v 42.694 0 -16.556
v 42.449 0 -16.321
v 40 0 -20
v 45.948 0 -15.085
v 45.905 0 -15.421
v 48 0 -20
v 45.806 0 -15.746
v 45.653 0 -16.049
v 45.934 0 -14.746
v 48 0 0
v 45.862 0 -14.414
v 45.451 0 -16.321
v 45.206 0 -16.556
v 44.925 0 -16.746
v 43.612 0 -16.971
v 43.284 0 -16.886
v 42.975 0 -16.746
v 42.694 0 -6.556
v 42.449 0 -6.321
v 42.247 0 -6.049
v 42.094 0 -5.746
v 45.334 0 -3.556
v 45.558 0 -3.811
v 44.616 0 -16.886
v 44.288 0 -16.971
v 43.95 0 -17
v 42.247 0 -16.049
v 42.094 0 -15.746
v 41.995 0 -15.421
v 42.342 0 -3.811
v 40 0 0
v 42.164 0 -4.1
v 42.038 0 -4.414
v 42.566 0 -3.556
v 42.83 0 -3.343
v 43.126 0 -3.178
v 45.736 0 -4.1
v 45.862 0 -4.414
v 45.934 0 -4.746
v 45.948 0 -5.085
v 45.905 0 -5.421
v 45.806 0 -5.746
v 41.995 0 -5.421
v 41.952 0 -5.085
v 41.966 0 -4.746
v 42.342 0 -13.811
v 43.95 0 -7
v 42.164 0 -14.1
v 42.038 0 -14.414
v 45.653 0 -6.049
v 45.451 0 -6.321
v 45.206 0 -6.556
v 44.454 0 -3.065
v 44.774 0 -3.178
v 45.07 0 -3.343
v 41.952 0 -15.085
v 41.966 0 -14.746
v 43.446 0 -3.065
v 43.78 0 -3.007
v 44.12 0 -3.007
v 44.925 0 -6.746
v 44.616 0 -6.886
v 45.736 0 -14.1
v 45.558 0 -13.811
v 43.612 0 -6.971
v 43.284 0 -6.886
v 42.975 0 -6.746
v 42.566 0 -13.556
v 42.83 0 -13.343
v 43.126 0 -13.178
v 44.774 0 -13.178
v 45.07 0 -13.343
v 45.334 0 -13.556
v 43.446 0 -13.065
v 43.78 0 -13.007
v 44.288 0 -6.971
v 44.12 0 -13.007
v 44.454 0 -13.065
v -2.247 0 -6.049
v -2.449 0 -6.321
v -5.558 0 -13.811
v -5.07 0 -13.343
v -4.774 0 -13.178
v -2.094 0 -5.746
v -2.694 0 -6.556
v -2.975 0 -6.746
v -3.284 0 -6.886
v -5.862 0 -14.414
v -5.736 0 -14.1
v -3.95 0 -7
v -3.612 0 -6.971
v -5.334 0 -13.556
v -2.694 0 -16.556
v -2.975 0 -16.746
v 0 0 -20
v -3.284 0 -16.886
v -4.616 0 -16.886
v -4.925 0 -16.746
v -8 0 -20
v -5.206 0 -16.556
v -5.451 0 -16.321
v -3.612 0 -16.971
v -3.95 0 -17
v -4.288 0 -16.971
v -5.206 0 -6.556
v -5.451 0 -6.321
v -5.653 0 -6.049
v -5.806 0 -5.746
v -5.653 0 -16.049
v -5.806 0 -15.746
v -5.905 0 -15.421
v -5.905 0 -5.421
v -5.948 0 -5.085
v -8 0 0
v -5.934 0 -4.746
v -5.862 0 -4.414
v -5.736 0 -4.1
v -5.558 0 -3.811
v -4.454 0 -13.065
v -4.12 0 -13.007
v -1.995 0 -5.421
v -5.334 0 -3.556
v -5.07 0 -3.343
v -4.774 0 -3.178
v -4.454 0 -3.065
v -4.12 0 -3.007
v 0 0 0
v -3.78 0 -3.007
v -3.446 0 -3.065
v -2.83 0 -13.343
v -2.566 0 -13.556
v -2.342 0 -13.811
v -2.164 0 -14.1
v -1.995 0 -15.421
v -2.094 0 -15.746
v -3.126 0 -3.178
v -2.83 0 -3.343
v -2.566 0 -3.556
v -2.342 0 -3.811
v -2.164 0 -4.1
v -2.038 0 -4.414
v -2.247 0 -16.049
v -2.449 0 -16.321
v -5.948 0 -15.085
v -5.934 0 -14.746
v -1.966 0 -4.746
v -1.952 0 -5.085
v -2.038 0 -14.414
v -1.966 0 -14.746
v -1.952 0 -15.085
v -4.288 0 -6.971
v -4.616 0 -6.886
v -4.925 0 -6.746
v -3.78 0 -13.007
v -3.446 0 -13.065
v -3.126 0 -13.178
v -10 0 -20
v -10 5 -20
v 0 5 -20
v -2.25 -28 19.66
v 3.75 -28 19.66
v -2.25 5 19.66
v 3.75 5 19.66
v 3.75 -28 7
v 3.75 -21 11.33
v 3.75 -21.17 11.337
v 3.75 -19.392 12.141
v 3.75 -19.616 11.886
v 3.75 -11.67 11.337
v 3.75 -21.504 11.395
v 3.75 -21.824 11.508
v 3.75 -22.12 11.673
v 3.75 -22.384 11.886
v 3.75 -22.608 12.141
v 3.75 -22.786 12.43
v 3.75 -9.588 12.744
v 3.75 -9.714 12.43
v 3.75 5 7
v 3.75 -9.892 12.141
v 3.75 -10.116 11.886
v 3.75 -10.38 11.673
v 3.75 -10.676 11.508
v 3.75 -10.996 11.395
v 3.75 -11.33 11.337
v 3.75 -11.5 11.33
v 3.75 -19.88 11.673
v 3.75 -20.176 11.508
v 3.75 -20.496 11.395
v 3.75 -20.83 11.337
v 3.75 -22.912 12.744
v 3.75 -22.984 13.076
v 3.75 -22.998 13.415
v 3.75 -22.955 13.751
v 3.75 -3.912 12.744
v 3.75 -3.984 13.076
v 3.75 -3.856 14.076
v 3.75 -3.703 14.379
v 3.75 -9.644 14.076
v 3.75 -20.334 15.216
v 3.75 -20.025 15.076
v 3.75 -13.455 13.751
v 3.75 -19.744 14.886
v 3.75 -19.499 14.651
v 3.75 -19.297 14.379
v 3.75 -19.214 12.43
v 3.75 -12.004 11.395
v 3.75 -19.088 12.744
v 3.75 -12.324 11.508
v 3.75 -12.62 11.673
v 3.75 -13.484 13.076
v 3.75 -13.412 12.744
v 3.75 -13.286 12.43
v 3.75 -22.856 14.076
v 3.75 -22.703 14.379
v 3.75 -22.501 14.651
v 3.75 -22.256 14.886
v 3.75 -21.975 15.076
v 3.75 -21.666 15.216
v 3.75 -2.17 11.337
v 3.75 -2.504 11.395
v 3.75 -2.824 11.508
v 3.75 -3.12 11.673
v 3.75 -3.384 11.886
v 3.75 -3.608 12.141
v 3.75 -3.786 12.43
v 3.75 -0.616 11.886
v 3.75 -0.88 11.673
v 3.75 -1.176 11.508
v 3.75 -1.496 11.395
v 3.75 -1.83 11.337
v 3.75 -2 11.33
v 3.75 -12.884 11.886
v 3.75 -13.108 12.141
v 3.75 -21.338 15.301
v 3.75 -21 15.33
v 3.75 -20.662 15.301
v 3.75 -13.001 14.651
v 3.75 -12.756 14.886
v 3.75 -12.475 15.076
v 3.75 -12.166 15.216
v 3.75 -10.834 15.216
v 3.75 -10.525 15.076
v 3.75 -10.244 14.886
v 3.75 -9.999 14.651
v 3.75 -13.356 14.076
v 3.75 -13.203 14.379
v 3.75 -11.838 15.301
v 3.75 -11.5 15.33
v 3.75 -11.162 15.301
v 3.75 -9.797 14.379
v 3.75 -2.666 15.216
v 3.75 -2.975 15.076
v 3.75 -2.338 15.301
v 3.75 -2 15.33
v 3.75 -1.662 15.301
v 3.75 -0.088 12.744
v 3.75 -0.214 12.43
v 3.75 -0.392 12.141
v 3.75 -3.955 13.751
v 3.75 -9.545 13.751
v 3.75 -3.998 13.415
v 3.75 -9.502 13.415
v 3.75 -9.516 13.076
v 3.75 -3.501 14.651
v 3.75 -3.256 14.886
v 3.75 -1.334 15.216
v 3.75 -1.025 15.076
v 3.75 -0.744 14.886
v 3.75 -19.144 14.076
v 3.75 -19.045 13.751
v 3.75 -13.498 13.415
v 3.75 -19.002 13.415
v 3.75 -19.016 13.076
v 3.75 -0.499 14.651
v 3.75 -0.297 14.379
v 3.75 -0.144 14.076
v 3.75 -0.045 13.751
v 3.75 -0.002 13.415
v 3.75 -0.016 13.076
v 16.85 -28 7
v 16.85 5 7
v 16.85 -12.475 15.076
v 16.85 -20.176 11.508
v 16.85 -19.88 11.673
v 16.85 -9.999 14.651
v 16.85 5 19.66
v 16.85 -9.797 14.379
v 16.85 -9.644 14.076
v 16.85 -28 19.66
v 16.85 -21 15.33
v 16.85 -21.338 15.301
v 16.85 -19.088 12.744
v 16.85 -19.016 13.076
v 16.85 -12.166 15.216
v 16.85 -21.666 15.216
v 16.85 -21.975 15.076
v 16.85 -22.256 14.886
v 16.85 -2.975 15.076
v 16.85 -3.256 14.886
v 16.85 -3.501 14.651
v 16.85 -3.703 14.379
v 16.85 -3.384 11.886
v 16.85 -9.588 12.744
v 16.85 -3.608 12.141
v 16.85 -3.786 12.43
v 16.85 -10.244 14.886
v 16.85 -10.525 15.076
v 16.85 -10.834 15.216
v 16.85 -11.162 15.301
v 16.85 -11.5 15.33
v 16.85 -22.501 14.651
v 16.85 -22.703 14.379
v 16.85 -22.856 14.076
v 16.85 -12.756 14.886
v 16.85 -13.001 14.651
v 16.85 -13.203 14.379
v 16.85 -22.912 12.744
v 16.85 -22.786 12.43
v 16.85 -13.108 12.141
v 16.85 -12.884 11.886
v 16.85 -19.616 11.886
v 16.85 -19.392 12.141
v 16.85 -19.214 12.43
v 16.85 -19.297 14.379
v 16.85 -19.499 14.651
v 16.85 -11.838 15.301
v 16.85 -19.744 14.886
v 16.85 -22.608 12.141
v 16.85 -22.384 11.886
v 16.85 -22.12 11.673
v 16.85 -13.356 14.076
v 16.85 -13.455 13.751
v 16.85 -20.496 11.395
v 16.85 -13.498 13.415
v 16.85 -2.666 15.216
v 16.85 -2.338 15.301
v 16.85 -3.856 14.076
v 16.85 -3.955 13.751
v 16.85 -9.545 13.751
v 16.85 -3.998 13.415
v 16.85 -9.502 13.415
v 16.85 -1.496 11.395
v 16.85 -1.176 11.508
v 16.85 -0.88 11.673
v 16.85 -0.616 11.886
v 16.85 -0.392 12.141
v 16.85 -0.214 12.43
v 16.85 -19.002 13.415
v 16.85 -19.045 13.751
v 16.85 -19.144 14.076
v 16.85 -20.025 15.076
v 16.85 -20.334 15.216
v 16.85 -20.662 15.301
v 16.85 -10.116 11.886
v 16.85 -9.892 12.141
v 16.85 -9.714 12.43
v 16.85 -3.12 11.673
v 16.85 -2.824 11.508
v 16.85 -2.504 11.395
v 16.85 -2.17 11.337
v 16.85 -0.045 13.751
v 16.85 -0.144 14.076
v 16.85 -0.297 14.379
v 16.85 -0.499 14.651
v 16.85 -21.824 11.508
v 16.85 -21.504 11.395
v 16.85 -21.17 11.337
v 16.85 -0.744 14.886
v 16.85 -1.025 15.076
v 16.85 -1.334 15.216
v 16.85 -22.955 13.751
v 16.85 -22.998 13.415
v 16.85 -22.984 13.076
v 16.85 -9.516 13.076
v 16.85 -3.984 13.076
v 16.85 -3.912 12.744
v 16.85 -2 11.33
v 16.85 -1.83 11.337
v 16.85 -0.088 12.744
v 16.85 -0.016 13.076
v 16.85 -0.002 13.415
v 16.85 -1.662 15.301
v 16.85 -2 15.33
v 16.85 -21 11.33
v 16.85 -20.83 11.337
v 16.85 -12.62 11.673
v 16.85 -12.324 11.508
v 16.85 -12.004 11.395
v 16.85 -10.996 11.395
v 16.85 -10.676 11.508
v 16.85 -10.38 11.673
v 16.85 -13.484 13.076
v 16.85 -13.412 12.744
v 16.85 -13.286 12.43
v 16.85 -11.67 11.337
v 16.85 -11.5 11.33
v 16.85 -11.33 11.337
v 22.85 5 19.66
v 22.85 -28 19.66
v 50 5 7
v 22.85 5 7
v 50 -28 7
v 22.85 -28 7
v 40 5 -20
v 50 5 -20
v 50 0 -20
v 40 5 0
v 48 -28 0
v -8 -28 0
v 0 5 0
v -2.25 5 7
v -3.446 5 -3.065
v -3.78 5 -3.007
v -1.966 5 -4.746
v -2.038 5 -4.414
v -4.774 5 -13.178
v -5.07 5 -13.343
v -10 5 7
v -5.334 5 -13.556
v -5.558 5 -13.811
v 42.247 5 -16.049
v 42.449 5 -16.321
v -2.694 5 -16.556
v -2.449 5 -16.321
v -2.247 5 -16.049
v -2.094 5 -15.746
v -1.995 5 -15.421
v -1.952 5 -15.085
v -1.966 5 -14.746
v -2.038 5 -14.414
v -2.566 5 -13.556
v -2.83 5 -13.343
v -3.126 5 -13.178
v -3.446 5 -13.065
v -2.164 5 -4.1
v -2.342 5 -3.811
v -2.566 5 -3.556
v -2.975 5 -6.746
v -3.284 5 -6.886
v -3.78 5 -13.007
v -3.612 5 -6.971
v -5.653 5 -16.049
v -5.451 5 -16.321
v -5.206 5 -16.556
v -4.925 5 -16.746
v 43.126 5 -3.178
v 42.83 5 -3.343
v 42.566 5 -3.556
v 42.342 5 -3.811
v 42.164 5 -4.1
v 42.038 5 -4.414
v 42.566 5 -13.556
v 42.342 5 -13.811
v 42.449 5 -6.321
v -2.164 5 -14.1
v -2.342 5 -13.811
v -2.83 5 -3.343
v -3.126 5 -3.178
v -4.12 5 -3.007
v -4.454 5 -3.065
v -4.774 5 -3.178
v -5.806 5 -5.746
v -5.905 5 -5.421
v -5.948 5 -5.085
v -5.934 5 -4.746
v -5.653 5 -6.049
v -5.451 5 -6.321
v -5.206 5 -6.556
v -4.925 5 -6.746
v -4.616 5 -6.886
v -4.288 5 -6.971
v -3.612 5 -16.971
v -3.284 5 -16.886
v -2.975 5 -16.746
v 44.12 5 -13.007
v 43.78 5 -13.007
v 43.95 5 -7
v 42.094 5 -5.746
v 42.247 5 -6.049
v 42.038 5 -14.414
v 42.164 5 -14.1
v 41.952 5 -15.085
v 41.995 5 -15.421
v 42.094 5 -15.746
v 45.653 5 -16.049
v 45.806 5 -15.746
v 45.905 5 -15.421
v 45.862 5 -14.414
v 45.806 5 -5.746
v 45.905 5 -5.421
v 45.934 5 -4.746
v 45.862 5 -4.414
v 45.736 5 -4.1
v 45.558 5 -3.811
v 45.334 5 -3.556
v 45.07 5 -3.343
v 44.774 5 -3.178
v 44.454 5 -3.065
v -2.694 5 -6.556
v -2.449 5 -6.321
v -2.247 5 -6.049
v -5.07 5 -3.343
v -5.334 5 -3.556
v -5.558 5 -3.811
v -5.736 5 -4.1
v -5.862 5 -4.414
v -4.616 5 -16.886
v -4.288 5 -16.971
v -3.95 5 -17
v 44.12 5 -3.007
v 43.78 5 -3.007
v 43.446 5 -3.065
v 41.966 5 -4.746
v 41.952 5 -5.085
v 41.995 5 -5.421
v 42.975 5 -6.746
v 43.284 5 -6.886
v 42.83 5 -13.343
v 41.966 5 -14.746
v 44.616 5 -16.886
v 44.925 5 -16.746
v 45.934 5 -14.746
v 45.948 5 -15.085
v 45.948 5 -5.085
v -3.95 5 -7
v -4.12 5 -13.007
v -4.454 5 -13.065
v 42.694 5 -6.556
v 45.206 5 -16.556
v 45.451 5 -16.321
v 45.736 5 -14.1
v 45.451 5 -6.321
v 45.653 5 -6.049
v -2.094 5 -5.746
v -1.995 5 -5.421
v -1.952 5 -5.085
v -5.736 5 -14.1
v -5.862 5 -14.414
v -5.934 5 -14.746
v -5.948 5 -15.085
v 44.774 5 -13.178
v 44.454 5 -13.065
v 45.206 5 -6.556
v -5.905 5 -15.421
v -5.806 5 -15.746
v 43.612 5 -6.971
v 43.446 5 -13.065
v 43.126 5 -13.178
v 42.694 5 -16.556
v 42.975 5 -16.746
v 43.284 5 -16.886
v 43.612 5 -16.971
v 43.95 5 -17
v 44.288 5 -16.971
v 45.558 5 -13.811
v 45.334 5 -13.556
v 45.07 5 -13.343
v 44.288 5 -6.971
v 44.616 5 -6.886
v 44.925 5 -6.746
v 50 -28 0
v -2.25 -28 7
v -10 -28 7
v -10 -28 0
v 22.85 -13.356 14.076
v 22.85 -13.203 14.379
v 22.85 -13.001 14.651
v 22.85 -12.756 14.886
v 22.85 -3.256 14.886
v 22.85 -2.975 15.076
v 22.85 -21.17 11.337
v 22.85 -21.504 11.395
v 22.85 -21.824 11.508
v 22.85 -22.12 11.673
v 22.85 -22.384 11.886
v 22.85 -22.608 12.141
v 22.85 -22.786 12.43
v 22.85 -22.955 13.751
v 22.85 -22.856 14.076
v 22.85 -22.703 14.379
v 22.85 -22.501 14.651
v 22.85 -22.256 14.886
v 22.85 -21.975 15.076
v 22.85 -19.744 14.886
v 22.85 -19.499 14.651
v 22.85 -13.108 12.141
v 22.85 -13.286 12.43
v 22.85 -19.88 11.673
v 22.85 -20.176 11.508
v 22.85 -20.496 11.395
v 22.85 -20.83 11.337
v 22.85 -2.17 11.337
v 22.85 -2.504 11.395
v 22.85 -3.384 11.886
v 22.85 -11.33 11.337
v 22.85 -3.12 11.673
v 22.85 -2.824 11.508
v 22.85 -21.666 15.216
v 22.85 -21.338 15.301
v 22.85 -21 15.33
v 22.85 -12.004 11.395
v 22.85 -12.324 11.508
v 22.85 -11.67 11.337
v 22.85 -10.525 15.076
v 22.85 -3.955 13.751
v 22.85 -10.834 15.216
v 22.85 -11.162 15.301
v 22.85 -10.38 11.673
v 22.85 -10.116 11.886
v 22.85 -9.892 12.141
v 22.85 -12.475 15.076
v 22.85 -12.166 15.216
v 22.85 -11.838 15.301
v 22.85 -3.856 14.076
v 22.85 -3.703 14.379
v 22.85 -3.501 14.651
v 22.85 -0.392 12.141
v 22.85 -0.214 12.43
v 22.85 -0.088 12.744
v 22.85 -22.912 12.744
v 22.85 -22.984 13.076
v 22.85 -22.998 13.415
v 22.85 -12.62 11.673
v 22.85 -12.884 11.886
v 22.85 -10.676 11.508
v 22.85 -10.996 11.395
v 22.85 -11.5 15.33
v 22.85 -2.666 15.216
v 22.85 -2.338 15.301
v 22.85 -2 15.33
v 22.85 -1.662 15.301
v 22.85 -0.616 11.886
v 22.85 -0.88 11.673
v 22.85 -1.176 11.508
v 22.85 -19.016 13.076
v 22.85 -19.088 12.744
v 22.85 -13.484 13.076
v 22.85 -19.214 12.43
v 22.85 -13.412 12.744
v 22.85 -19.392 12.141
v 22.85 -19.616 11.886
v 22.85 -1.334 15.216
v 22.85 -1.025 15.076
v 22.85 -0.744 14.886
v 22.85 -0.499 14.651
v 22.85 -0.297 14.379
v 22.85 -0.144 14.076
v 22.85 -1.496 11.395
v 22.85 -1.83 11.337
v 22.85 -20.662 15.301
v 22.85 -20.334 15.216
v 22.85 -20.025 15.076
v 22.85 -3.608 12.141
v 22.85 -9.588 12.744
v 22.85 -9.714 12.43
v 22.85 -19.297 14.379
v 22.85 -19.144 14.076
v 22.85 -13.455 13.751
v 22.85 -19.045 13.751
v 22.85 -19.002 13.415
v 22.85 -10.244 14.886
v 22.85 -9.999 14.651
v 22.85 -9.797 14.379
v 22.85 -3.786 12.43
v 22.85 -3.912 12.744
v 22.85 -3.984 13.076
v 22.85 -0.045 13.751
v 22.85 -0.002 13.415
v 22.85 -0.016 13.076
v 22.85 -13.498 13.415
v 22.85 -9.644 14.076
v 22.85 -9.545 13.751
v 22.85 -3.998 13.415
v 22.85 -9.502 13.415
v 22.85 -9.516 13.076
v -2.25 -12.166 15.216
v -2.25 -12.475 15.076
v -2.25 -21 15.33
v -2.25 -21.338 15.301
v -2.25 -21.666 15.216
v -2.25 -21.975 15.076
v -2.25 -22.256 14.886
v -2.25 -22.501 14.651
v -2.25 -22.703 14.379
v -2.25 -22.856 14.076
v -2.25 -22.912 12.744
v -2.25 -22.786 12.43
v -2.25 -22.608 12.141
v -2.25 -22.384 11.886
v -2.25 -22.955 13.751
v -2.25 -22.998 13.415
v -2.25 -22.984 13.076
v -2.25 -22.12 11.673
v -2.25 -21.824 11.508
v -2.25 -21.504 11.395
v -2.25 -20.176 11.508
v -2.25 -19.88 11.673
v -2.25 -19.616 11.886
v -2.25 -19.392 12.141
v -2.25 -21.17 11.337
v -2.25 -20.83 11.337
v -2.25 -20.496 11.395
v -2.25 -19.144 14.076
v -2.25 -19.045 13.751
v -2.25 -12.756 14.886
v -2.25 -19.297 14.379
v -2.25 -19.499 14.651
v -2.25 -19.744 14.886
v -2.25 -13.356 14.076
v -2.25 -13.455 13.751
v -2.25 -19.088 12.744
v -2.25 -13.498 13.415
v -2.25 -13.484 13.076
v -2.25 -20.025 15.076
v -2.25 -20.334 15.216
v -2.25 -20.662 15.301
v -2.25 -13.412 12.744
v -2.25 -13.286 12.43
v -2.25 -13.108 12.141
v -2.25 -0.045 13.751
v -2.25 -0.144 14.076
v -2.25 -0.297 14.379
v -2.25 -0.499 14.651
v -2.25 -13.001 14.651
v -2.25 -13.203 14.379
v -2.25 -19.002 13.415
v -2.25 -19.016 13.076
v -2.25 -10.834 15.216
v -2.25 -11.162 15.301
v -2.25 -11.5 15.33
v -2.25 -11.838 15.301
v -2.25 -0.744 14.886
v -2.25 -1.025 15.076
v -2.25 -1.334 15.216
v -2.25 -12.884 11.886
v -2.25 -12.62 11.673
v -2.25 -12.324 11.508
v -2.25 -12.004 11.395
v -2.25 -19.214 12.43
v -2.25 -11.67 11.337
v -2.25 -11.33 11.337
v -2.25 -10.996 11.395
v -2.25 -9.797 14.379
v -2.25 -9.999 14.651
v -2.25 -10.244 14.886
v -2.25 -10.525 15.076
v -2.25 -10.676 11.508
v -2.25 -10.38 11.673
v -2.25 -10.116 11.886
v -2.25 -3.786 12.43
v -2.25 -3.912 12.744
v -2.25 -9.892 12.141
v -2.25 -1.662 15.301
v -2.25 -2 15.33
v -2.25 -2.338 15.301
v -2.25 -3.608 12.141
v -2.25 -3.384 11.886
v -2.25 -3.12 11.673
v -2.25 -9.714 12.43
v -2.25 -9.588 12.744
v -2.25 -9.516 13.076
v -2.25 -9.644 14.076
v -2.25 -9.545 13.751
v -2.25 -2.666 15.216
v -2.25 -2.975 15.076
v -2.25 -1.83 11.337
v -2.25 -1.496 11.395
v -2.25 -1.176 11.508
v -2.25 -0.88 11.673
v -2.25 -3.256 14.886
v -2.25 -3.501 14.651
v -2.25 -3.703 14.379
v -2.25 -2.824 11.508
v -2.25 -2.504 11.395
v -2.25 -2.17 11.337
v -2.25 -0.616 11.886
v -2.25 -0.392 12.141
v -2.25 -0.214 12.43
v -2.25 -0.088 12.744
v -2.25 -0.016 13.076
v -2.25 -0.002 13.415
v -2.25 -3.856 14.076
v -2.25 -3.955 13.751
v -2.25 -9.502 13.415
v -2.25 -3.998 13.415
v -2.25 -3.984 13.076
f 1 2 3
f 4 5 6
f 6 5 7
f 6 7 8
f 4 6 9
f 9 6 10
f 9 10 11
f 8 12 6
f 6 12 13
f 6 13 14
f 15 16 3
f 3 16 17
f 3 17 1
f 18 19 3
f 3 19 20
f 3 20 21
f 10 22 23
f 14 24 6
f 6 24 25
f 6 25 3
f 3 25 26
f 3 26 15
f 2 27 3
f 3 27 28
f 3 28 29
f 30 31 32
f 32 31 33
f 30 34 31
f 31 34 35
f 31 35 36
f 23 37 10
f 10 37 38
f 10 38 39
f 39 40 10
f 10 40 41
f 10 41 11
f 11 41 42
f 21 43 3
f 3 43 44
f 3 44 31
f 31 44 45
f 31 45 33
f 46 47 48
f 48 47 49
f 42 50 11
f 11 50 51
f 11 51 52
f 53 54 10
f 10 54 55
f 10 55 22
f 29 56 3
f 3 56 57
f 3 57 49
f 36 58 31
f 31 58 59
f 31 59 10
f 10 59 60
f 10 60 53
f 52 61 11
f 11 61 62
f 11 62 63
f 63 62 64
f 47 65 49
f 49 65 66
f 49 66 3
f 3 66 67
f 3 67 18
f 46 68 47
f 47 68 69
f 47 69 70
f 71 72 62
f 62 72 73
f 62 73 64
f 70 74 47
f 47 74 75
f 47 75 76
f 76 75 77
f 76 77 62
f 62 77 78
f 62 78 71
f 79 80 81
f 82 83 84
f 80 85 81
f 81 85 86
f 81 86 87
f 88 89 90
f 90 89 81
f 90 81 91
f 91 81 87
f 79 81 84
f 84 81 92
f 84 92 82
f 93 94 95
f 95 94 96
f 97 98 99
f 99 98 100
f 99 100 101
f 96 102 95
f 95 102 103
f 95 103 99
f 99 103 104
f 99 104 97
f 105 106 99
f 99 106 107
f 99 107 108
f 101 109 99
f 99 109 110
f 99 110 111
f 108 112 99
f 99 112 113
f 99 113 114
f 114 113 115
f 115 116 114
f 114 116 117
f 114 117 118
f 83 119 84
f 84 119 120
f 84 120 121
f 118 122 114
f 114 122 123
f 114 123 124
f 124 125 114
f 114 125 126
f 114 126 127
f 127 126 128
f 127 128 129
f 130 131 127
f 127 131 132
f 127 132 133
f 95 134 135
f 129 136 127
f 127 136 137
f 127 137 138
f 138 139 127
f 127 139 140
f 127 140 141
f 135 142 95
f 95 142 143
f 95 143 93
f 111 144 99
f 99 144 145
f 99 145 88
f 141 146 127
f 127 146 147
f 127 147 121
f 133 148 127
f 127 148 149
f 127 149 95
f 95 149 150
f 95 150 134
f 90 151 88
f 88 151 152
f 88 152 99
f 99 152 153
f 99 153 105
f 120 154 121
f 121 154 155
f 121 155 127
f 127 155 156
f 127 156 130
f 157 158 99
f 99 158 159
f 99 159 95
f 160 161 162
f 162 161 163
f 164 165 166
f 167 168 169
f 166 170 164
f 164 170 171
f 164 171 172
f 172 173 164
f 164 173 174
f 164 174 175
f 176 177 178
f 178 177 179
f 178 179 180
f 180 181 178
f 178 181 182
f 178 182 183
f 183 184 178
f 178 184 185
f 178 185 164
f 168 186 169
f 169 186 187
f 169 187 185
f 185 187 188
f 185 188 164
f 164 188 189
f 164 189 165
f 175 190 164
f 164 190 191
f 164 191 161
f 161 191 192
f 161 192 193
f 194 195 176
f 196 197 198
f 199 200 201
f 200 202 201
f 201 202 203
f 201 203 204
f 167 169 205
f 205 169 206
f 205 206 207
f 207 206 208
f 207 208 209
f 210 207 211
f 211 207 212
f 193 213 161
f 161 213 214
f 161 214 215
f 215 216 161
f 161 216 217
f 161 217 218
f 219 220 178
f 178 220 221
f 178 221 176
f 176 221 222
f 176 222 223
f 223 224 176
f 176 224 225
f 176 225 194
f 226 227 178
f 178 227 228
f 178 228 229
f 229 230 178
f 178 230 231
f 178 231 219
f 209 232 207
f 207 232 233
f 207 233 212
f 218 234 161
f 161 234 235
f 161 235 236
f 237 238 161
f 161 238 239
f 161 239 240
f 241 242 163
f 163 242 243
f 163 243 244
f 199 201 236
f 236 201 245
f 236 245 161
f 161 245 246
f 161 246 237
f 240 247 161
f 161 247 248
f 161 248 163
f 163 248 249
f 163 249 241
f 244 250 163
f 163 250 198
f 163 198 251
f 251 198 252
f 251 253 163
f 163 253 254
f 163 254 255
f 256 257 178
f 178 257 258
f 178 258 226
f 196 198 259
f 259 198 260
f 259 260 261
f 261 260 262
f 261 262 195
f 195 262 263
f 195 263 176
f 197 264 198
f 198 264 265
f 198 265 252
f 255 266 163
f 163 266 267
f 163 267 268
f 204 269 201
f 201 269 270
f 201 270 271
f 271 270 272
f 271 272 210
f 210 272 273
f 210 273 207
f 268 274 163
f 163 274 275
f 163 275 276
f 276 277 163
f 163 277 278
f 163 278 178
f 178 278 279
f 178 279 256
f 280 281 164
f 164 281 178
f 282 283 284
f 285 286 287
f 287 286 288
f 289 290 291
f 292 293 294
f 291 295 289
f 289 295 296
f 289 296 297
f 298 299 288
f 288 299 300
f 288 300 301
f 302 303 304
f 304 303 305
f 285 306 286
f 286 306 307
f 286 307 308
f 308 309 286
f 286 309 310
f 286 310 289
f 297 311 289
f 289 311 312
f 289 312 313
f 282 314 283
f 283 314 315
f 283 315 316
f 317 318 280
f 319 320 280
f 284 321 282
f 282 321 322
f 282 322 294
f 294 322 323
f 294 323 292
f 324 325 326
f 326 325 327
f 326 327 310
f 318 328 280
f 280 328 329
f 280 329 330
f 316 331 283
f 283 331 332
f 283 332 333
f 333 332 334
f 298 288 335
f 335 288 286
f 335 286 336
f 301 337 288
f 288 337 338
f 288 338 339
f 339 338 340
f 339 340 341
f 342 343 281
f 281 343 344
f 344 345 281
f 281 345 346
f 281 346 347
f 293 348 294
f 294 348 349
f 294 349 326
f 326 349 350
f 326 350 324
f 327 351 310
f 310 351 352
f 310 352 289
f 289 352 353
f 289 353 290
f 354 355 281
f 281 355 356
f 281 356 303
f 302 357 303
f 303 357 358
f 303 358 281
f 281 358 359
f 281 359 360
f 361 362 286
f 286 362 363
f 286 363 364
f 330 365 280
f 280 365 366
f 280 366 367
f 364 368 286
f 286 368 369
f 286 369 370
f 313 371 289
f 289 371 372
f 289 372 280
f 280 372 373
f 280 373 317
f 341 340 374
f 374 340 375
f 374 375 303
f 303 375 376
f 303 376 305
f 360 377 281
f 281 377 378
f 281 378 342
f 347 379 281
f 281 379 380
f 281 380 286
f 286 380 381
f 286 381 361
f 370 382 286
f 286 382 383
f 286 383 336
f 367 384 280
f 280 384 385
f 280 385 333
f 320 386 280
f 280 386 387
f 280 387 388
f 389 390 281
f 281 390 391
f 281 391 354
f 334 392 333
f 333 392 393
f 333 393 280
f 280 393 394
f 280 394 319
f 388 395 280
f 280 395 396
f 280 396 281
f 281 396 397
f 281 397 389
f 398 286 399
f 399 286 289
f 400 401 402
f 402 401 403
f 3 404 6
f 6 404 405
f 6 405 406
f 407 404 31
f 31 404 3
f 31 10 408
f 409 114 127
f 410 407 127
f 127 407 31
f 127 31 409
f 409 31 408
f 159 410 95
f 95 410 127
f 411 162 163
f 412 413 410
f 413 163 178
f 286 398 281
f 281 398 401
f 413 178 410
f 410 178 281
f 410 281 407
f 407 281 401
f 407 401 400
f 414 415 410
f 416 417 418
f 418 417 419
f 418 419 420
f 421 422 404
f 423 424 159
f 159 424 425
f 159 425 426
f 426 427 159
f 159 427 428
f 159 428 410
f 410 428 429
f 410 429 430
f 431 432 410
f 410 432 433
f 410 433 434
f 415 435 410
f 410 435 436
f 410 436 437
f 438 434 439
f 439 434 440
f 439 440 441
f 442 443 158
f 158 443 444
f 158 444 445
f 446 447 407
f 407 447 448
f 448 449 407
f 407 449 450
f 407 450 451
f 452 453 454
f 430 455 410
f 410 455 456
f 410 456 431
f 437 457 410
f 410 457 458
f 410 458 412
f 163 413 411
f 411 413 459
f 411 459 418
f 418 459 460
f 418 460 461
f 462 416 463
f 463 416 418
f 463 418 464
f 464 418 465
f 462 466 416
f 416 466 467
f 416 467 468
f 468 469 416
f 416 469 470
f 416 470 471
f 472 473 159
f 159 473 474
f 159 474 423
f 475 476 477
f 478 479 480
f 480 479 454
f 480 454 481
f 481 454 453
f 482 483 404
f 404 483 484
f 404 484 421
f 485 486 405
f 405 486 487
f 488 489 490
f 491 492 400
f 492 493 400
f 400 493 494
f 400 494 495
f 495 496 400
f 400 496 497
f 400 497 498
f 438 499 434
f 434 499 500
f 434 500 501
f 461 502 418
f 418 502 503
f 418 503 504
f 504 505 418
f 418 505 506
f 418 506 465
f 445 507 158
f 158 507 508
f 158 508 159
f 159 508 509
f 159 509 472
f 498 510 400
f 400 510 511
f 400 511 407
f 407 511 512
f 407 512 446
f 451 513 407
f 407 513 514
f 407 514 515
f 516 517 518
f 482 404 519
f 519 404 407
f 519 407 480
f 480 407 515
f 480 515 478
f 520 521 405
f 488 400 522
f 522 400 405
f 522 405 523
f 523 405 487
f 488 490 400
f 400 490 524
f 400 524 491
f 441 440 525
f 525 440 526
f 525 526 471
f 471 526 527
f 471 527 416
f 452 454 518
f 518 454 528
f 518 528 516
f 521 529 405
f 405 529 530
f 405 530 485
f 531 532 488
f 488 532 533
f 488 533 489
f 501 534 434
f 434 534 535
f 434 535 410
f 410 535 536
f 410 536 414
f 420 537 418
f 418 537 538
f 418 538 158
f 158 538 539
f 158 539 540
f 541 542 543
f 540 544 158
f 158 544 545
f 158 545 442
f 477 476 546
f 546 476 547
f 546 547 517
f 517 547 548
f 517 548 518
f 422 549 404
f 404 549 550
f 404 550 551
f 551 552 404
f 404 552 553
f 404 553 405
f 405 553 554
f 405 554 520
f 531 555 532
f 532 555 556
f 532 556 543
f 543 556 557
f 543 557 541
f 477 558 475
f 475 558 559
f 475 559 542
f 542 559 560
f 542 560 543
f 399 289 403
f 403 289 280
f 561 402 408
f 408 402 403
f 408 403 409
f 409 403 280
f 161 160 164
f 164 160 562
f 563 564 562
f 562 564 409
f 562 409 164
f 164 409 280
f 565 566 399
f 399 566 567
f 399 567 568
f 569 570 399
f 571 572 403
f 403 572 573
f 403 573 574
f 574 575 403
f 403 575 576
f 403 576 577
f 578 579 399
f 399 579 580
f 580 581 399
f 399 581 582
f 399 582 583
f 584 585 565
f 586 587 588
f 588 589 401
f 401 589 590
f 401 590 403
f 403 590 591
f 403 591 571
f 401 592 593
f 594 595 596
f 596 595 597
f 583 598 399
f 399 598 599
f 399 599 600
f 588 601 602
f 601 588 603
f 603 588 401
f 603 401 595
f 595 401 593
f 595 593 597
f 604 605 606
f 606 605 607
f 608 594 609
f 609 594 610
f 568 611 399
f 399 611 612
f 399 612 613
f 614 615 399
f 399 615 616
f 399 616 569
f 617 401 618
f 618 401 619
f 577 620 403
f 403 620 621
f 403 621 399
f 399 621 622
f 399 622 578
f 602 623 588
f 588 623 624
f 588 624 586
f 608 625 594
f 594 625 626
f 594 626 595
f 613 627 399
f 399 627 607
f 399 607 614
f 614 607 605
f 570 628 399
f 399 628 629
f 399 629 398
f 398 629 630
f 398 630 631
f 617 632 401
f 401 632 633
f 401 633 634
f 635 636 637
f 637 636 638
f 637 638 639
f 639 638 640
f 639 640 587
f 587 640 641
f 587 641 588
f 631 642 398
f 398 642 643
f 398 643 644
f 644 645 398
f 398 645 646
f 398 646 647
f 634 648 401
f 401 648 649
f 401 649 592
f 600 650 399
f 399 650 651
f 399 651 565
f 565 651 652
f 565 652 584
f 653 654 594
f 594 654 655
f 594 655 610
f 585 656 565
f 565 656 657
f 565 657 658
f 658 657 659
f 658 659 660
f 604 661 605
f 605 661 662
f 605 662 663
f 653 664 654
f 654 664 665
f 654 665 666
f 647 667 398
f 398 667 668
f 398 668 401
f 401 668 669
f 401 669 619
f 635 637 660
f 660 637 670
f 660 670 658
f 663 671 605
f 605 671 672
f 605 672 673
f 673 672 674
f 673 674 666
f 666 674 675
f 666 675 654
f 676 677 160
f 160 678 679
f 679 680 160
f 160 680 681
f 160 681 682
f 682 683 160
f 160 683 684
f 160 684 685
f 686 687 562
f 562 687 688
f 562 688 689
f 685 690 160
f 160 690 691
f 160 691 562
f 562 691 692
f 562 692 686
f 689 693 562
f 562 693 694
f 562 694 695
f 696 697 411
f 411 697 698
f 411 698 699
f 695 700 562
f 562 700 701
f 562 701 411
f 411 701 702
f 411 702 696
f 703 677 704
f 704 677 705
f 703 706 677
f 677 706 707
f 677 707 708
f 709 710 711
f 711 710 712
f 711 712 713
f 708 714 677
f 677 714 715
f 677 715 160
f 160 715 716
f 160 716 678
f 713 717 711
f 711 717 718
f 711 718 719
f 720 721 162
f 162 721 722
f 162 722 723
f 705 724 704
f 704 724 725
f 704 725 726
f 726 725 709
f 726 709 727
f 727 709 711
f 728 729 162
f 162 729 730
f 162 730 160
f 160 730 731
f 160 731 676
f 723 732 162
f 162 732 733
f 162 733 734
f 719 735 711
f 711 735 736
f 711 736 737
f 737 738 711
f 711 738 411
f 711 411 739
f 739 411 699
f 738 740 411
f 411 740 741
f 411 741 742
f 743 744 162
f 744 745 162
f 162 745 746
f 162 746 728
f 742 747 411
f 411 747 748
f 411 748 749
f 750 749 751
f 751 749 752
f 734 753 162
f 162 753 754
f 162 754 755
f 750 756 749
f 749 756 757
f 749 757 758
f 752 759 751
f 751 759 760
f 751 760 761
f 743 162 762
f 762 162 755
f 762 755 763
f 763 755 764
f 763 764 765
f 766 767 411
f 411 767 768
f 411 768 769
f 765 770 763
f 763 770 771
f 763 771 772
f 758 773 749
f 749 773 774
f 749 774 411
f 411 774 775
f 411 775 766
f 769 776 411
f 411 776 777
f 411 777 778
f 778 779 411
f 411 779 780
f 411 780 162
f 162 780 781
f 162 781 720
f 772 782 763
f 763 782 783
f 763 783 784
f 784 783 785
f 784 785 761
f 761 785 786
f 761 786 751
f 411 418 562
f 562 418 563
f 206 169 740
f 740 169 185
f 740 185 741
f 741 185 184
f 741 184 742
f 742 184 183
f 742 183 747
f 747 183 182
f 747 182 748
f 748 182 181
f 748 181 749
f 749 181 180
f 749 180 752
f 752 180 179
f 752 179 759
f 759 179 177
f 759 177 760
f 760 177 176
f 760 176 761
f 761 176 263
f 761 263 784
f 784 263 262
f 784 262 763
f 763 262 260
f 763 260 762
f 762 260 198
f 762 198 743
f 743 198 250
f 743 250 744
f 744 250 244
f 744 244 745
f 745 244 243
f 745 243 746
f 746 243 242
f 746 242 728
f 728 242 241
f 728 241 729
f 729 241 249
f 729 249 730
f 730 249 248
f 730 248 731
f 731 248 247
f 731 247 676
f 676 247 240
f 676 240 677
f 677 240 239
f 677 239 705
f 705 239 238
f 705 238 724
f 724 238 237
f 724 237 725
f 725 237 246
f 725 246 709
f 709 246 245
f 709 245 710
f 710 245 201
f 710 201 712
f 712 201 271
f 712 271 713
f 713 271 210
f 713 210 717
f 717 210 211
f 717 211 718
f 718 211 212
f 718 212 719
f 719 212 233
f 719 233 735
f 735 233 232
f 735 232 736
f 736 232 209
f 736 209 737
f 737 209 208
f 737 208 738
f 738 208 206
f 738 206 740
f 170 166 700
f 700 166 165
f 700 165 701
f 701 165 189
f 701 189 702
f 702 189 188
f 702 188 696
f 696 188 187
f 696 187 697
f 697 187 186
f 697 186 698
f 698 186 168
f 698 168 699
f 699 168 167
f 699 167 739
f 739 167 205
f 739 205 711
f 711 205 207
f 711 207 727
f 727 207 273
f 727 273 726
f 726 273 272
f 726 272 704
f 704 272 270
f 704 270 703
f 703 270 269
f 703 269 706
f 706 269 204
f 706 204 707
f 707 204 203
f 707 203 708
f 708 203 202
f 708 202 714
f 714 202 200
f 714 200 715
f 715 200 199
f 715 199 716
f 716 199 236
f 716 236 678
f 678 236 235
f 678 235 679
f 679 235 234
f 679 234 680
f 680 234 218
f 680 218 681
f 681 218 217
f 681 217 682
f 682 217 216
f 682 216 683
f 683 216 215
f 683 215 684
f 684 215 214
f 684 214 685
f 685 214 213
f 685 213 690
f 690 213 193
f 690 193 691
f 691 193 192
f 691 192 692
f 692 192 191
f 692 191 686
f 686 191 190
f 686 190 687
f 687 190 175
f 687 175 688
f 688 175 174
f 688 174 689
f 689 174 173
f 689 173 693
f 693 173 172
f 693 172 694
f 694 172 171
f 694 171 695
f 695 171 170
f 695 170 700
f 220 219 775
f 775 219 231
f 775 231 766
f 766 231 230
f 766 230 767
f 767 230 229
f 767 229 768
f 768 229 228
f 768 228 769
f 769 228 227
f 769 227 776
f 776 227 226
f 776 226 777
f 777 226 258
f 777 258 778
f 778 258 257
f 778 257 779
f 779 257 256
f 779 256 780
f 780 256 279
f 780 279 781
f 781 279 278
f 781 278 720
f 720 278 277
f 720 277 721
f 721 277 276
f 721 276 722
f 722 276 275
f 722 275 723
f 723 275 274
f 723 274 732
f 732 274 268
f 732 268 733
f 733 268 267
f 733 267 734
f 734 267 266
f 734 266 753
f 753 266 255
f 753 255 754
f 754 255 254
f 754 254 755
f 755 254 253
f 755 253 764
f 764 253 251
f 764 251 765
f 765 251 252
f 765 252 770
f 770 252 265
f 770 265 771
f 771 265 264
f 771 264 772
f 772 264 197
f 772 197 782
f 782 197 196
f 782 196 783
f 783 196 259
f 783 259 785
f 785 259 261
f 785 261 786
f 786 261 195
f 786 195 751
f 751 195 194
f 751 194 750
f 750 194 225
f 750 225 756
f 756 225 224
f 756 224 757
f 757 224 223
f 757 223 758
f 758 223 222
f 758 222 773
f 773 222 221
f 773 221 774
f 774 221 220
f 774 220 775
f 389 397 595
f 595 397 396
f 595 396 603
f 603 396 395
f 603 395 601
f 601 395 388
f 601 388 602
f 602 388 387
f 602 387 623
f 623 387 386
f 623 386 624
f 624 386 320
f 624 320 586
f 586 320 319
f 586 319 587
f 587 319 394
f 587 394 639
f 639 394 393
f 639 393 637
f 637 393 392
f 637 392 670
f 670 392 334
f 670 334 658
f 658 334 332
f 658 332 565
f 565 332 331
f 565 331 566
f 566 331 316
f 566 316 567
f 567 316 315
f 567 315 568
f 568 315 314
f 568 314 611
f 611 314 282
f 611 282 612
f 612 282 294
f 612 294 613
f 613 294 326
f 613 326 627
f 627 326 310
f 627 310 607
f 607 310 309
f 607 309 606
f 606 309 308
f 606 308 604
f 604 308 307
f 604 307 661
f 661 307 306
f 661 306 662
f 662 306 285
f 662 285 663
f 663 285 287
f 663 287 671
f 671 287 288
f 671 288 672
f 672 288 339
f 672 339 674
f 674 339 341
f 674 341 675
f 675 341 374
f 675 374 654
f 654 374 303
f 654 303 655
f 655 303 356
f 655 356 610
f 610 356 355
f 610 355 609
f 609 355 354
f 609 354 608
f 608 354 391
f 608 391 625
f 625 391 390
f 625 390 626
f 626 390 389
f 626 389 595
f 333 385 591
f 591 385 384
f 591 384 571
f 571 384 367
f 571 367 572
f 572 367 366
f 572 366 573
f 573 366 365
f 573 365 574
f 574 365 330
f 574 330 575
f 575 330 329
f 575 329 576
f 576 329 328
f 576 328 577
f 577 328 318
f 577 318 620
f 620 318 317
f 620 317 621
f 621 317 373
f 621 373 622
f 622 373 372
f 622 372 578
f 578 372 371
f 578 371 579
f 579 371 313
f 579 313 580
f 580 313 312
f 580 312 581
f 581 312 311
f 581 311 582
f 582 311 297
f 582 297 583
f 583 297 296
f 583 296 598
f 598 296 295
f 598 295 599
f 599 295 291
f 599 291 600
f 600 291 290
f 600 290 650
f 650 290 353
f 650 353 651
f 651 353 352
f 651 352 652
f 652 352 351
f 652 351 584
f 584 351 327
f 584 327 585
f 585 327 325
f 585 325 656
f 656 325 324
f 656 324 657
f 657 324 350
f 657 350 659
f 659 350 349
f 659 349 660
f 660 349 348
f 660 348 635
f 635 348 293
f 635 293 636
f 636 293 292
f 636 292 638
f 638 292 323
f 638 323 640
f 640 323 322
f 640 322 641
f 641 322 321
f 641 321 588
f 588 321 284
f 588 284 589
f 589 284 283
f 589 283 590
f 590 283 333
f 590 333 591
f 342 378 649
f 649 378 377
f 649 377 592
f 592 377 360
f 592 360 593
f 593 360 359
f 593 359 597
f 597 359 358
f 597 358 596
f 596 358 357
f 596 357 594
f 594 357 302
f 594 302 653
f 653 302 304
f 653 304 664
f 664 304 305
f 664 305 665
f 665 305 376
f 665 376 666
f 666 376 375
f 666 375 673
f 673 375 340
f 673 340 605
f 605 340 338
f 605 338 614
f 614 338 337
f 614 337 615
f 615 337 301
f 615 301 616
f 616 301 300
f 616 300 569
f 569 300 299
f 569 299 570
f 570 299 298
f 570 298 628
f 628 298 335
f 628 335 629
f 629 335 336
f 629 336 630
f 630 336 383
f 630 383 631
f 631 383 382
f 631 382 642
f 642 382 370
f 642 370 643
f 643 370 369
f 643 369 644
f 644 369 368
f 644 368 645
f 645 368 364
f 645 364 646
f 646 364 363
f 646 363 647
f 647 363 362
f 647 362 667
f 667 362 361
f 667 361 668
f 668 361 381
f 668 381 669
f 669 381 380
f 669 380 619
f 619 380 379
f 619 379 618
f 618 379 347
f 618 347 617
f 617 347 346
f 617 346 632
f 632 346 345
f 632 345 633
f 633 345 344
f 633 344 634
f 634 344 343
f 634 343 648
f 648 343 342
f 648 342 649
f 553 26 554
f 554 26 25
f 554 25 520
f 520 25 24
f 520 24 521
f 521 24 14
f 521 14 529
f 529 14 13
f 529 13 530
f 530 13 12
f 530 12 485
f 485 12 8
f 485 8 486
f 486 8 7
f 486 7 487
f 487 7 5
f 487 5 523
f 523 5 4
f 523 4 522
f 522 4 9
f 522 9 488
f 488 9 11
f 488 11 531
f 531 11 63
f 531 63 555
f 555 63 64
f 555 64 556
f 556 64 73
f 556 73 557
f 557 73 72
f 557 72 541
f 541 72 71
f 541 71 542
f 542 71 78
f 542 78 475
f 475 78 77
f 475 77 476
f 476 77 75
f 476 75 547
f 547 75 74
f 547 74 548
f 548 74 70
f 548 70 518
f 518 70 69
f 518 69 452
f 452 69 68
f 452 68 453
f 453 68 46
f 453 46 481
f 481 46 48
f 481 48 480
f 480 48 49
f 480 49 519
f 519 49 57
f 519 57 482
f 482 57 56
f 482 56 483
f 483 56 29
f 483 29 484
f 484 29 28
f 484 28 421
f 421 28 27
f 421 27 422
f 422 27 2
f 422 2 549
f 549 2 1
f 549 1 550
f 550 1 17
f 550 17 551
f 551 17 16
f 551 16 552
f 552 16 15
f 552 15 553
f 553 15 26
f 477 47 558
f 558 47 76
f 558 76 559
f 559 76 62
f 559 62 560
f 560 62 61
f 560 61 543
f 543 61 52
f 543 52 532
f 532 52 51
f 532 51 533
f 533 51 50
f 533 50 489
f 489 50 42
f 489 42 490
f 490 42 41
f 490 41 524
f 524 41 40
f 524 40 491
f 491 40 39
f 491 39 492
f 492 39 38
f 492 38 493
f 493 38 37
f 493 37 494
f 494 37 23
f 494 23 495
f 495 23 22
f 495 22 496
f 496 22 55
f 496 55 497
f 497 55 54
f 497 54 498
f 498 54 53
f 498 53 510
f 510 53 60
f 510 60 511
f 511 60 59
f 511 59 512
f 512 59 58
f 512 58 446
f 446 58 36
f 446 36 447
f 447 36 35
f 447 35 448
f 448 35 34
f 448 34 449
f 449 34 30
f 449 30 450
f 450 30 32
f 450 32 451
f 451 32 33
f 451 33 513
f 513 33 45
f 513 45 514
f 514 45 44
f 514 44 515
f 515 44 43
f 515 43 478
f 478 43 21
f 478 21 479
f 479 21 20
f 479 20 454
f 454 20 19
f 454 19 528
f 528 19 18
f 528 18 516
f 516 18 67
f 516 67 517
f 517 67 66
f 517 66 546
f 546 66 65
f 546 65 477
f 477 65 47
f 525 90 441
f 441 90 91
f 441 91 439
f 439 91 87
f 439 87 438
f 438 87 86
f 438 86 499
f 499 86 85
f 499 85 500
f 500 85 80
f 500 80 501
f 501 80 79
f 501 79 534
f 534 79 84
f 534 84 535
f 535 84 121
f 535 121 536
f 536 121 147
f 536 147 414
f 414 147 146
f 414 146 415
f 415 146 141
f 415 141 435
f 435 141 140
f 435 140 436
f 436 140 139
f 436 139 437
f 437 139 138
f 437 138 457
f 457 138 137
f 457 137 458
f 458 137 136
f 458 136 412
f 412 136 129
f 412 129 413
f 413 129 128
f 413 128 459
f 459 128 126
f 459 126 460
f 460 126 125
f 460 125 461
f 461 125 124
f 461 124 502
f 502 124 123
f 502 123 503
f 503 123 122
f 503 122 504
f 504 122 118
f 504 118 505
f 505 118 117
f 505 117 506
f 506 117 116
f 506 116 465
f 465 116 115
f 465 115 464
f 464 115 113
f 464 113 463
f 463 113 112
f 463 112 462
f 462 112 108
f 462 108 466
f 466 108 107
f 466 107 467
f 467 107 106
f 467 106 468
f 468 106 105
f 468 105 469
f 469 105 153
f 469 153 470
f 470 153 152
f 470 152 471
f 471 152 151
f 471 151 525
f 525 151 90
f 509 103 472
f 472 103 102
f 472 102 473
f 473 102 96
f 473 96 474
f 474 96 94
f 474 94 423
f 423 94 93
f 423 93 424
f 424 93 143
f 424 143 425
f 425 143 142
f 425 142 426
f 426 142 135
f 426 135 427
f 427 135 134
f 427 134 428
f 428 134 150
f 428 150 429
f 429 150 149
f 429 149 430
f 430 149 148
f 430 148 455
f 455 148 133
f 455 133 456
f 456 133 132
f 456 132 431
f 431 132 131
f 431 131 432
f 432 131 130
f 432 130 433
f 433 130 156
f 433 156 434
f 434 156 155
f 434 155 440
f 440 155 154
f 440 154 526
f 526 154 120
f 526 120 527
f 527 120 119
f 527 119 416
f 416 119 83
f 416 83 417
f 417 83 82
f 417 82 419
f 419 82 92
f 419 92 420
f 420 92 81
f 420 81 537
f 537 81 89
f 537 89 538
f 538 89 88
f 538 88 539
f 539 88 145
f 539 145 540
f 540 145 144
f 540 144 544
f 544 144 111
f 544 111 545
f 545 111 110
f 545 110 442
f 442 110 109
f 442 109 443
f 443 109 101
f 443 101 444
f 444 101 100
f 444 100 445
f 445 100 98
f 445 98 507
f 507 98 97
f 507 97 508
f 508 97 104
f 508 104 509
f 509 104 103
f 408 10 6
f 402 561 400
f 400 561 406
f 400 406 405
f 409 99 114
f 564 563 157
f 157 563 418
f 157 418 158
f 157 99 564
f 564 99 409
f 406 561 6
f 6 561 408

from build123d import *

# Parameters (mm, degrees)
SKETCH2_W               = 8
SKETCH2_H               = 20
SKETCH2_W_2             = 11.75
SKETCH2_H_2             = 12.66
BOSS_EXTRUDE1_DEPTH     = 5
SKETCH3_W               = 13.1
SKETCH3_H               = 7
BOSS_EXTRUDE2_DEPTH     = 28
SKETCH4_W               = 5.75
SKETCH4_H               = 12.66
CUT_EXTRUDE1_DEPTH      = 62.587336361
SKETCH5_R               = 2
CUT_EXTRUDE2_DEPTH      = 61.902073035
SKETCH6_R               = 2
CUT_EXTRUDE3_DEPTH      = 60.059292241
SKETCH7_W               = 7
SKETCH7_H               = 28
BOSS_EXTRUDE3_DEPTH     = 19.4
SKETCH8_W               = 27
SKETCH8_H               = 33
BOSS_EXTRUDE4_DEPTH     = 2
SKETCH9_W               = 27
SKETCH9_H               = 33
BOSS_EXTRUDE5_DEPTH     = 2
CUT_EXTRUDE4_DEPTH      = 68.4388612
CUT_EXTRUDE4_DEPTH_BACK = 68.4388612


with BuildPart() as part:
    # Sketch2 → Boss-Extrude1 (new body)
    with BuildSketch(Plane(origin=(0, 0, 0), x_dir=(1, 0, 0), z_dir=(0, 1, 0))):
        with Locations((-4, 10)):
            Rectangle(SKETCH2_W, SKETCH2_H)
        Polygon((40, 0), (0, 0), (-8, 0), (-8, -7), (3.75, -7), (16.85, -7), (28.6, -7), (48, -7), (48, 0), align=None)
        with Locations((-2.125, -13.33)):
            Rectangle(SKETCH2_W_2, SKETCH2_H_2)
        with Locations((22.725, -13.33)):
            Rectangle(SKETCH2_W_2, SKETCH2_H_2)
        with Locations((44, 10)):
            Rectangle(SKETCH2_W, SKETCH2_H)
    extrude(amount=BOSS_EXTRUDE1_DEPTH)

    # Sketch3 → Boss-Extrude2 (add)
    with BuildSketch(Plane.XZ):
        Polygon((3.75, 19.66), (-8, 19.66), (-8, 0), (0, 0), (3.75, 0), (3.75, 7), align=None)
        with Locations((10.3, 3.5)):
            Rectangle(SKETCH3_W, SKETCH3_H)
        Polygon((16.85, 19.66), (16.85, 7), (16.85, 0), (28.6, 0), (28.6, 7), (28.6, 19.66), align=None)
    extrude(amount=BOSS_EXTRUDE2_DEPTH)

    # Sketch4 → Cut-Extrude1 (cut, through all)
    with BuildSketch(Plane.XZ.offset(28)):
        with Locations((-5.125, 13.33)):
            Rectangle(SKETCH4_W, SKETCH4_H)
        with Locations((25.725, 13.33)):
            Rectangle(SKETCH4_W, SKETCH4_H)
    extrude(amount=-CUT_EXTRUDE1_DEPTH, mode=Mode.SUBTRACT)

    # Sketch5 → Cut-Extrude2 (cut, through all)
    with BuildSketch(Plane.ZY.offset(2.25)):
        with Locations((13.33, -2)):
            Circle(SKETCH5_R)
        with Locations((13.33, -21)):
            Circle(SKETCH5_R)
        with Locations((13.33, -11.5)):
            Circle(SKETCH5_R)
    extrude(amount=-CUT_EXTRUDE2_DEPTH, mode=Mode.SUBTRACT)

    # Sketch6 → Cut-Extrude3 (cut, through all)
    with BuildSketch(Plane.XZ):
        with Locations(Location((43.95, -5, 0), (0, 0, 270))):
            Circle(SKETCH6_R)
        with Locations(Location((43.95, -15, 0), (0, 0, 270))):
            Circle(SKETCH6_R)
        with Locations(Location((-3.95, -5, 0), (0, 0, 270))):
            Circle(SKETCH6_R)
        with Locations(Location((-3.95, -15, 0), (0, 0, 270))):
            Circle(SKETCH6_R)
    extrude(amount=-CUT_EXTRUDE3_DEPTH, mode=Mode.SUBTRACT)

    # Sketch7 → Boss-Extrude3 (add)
    with BuildSketch(Plane(origin=(28.6, 0, 0), x_dir=(0, 0, -1), z_dir=(1, 0, 0))):
        with Locations((-3.5, -14)):
            Rectangle(SKETCH7_W, SKETCH7_H)
    extrude(amount=BOSS_EXTRUDE3_DEPTH)

    # Sketch8 → Boss-Extrude4 (add)
    with BuildSketch(Plane(origin=(48, 0, 0), x_dir=(0, 0, -1), z_dir=(1, 0, 0))):
        with Locations((6.5, -11.5)):
            Rectangle(SKETCH8_W, SKETCH8_H)
    extrude(amount=BOSS_EXTRUDE4_DEPTH)

    # Sketch9 → Boss-Extrude5 (add)
    with BuildSketch(Plane.ZY.offset(8)):
        with Locations((-6.5, -11.5)):
            Rectangle(SKETCH9_W, SKETCH9_H)
    extrude(amount=BOSS_EXTRUDE5_DEPTH)

    # Sketch10 → Cut-Extrude4 (cut, two sides: drawn at the far end of the back side and taken through both)
    with BuildSketch(Plane.ZY.offset(-48).offset(-CUT_EXTRUDE4_DEPTH_BACK)):
        Polygon((-20, 0), (0, -28), (-20, -28), align=None)
    extrude(amount=CUT_EXTRUDE4_DEPTH + CUT_EXTRUDE4_DEPTH_BACK, mode=Mode.SUBTRACT)


solid = part.part
